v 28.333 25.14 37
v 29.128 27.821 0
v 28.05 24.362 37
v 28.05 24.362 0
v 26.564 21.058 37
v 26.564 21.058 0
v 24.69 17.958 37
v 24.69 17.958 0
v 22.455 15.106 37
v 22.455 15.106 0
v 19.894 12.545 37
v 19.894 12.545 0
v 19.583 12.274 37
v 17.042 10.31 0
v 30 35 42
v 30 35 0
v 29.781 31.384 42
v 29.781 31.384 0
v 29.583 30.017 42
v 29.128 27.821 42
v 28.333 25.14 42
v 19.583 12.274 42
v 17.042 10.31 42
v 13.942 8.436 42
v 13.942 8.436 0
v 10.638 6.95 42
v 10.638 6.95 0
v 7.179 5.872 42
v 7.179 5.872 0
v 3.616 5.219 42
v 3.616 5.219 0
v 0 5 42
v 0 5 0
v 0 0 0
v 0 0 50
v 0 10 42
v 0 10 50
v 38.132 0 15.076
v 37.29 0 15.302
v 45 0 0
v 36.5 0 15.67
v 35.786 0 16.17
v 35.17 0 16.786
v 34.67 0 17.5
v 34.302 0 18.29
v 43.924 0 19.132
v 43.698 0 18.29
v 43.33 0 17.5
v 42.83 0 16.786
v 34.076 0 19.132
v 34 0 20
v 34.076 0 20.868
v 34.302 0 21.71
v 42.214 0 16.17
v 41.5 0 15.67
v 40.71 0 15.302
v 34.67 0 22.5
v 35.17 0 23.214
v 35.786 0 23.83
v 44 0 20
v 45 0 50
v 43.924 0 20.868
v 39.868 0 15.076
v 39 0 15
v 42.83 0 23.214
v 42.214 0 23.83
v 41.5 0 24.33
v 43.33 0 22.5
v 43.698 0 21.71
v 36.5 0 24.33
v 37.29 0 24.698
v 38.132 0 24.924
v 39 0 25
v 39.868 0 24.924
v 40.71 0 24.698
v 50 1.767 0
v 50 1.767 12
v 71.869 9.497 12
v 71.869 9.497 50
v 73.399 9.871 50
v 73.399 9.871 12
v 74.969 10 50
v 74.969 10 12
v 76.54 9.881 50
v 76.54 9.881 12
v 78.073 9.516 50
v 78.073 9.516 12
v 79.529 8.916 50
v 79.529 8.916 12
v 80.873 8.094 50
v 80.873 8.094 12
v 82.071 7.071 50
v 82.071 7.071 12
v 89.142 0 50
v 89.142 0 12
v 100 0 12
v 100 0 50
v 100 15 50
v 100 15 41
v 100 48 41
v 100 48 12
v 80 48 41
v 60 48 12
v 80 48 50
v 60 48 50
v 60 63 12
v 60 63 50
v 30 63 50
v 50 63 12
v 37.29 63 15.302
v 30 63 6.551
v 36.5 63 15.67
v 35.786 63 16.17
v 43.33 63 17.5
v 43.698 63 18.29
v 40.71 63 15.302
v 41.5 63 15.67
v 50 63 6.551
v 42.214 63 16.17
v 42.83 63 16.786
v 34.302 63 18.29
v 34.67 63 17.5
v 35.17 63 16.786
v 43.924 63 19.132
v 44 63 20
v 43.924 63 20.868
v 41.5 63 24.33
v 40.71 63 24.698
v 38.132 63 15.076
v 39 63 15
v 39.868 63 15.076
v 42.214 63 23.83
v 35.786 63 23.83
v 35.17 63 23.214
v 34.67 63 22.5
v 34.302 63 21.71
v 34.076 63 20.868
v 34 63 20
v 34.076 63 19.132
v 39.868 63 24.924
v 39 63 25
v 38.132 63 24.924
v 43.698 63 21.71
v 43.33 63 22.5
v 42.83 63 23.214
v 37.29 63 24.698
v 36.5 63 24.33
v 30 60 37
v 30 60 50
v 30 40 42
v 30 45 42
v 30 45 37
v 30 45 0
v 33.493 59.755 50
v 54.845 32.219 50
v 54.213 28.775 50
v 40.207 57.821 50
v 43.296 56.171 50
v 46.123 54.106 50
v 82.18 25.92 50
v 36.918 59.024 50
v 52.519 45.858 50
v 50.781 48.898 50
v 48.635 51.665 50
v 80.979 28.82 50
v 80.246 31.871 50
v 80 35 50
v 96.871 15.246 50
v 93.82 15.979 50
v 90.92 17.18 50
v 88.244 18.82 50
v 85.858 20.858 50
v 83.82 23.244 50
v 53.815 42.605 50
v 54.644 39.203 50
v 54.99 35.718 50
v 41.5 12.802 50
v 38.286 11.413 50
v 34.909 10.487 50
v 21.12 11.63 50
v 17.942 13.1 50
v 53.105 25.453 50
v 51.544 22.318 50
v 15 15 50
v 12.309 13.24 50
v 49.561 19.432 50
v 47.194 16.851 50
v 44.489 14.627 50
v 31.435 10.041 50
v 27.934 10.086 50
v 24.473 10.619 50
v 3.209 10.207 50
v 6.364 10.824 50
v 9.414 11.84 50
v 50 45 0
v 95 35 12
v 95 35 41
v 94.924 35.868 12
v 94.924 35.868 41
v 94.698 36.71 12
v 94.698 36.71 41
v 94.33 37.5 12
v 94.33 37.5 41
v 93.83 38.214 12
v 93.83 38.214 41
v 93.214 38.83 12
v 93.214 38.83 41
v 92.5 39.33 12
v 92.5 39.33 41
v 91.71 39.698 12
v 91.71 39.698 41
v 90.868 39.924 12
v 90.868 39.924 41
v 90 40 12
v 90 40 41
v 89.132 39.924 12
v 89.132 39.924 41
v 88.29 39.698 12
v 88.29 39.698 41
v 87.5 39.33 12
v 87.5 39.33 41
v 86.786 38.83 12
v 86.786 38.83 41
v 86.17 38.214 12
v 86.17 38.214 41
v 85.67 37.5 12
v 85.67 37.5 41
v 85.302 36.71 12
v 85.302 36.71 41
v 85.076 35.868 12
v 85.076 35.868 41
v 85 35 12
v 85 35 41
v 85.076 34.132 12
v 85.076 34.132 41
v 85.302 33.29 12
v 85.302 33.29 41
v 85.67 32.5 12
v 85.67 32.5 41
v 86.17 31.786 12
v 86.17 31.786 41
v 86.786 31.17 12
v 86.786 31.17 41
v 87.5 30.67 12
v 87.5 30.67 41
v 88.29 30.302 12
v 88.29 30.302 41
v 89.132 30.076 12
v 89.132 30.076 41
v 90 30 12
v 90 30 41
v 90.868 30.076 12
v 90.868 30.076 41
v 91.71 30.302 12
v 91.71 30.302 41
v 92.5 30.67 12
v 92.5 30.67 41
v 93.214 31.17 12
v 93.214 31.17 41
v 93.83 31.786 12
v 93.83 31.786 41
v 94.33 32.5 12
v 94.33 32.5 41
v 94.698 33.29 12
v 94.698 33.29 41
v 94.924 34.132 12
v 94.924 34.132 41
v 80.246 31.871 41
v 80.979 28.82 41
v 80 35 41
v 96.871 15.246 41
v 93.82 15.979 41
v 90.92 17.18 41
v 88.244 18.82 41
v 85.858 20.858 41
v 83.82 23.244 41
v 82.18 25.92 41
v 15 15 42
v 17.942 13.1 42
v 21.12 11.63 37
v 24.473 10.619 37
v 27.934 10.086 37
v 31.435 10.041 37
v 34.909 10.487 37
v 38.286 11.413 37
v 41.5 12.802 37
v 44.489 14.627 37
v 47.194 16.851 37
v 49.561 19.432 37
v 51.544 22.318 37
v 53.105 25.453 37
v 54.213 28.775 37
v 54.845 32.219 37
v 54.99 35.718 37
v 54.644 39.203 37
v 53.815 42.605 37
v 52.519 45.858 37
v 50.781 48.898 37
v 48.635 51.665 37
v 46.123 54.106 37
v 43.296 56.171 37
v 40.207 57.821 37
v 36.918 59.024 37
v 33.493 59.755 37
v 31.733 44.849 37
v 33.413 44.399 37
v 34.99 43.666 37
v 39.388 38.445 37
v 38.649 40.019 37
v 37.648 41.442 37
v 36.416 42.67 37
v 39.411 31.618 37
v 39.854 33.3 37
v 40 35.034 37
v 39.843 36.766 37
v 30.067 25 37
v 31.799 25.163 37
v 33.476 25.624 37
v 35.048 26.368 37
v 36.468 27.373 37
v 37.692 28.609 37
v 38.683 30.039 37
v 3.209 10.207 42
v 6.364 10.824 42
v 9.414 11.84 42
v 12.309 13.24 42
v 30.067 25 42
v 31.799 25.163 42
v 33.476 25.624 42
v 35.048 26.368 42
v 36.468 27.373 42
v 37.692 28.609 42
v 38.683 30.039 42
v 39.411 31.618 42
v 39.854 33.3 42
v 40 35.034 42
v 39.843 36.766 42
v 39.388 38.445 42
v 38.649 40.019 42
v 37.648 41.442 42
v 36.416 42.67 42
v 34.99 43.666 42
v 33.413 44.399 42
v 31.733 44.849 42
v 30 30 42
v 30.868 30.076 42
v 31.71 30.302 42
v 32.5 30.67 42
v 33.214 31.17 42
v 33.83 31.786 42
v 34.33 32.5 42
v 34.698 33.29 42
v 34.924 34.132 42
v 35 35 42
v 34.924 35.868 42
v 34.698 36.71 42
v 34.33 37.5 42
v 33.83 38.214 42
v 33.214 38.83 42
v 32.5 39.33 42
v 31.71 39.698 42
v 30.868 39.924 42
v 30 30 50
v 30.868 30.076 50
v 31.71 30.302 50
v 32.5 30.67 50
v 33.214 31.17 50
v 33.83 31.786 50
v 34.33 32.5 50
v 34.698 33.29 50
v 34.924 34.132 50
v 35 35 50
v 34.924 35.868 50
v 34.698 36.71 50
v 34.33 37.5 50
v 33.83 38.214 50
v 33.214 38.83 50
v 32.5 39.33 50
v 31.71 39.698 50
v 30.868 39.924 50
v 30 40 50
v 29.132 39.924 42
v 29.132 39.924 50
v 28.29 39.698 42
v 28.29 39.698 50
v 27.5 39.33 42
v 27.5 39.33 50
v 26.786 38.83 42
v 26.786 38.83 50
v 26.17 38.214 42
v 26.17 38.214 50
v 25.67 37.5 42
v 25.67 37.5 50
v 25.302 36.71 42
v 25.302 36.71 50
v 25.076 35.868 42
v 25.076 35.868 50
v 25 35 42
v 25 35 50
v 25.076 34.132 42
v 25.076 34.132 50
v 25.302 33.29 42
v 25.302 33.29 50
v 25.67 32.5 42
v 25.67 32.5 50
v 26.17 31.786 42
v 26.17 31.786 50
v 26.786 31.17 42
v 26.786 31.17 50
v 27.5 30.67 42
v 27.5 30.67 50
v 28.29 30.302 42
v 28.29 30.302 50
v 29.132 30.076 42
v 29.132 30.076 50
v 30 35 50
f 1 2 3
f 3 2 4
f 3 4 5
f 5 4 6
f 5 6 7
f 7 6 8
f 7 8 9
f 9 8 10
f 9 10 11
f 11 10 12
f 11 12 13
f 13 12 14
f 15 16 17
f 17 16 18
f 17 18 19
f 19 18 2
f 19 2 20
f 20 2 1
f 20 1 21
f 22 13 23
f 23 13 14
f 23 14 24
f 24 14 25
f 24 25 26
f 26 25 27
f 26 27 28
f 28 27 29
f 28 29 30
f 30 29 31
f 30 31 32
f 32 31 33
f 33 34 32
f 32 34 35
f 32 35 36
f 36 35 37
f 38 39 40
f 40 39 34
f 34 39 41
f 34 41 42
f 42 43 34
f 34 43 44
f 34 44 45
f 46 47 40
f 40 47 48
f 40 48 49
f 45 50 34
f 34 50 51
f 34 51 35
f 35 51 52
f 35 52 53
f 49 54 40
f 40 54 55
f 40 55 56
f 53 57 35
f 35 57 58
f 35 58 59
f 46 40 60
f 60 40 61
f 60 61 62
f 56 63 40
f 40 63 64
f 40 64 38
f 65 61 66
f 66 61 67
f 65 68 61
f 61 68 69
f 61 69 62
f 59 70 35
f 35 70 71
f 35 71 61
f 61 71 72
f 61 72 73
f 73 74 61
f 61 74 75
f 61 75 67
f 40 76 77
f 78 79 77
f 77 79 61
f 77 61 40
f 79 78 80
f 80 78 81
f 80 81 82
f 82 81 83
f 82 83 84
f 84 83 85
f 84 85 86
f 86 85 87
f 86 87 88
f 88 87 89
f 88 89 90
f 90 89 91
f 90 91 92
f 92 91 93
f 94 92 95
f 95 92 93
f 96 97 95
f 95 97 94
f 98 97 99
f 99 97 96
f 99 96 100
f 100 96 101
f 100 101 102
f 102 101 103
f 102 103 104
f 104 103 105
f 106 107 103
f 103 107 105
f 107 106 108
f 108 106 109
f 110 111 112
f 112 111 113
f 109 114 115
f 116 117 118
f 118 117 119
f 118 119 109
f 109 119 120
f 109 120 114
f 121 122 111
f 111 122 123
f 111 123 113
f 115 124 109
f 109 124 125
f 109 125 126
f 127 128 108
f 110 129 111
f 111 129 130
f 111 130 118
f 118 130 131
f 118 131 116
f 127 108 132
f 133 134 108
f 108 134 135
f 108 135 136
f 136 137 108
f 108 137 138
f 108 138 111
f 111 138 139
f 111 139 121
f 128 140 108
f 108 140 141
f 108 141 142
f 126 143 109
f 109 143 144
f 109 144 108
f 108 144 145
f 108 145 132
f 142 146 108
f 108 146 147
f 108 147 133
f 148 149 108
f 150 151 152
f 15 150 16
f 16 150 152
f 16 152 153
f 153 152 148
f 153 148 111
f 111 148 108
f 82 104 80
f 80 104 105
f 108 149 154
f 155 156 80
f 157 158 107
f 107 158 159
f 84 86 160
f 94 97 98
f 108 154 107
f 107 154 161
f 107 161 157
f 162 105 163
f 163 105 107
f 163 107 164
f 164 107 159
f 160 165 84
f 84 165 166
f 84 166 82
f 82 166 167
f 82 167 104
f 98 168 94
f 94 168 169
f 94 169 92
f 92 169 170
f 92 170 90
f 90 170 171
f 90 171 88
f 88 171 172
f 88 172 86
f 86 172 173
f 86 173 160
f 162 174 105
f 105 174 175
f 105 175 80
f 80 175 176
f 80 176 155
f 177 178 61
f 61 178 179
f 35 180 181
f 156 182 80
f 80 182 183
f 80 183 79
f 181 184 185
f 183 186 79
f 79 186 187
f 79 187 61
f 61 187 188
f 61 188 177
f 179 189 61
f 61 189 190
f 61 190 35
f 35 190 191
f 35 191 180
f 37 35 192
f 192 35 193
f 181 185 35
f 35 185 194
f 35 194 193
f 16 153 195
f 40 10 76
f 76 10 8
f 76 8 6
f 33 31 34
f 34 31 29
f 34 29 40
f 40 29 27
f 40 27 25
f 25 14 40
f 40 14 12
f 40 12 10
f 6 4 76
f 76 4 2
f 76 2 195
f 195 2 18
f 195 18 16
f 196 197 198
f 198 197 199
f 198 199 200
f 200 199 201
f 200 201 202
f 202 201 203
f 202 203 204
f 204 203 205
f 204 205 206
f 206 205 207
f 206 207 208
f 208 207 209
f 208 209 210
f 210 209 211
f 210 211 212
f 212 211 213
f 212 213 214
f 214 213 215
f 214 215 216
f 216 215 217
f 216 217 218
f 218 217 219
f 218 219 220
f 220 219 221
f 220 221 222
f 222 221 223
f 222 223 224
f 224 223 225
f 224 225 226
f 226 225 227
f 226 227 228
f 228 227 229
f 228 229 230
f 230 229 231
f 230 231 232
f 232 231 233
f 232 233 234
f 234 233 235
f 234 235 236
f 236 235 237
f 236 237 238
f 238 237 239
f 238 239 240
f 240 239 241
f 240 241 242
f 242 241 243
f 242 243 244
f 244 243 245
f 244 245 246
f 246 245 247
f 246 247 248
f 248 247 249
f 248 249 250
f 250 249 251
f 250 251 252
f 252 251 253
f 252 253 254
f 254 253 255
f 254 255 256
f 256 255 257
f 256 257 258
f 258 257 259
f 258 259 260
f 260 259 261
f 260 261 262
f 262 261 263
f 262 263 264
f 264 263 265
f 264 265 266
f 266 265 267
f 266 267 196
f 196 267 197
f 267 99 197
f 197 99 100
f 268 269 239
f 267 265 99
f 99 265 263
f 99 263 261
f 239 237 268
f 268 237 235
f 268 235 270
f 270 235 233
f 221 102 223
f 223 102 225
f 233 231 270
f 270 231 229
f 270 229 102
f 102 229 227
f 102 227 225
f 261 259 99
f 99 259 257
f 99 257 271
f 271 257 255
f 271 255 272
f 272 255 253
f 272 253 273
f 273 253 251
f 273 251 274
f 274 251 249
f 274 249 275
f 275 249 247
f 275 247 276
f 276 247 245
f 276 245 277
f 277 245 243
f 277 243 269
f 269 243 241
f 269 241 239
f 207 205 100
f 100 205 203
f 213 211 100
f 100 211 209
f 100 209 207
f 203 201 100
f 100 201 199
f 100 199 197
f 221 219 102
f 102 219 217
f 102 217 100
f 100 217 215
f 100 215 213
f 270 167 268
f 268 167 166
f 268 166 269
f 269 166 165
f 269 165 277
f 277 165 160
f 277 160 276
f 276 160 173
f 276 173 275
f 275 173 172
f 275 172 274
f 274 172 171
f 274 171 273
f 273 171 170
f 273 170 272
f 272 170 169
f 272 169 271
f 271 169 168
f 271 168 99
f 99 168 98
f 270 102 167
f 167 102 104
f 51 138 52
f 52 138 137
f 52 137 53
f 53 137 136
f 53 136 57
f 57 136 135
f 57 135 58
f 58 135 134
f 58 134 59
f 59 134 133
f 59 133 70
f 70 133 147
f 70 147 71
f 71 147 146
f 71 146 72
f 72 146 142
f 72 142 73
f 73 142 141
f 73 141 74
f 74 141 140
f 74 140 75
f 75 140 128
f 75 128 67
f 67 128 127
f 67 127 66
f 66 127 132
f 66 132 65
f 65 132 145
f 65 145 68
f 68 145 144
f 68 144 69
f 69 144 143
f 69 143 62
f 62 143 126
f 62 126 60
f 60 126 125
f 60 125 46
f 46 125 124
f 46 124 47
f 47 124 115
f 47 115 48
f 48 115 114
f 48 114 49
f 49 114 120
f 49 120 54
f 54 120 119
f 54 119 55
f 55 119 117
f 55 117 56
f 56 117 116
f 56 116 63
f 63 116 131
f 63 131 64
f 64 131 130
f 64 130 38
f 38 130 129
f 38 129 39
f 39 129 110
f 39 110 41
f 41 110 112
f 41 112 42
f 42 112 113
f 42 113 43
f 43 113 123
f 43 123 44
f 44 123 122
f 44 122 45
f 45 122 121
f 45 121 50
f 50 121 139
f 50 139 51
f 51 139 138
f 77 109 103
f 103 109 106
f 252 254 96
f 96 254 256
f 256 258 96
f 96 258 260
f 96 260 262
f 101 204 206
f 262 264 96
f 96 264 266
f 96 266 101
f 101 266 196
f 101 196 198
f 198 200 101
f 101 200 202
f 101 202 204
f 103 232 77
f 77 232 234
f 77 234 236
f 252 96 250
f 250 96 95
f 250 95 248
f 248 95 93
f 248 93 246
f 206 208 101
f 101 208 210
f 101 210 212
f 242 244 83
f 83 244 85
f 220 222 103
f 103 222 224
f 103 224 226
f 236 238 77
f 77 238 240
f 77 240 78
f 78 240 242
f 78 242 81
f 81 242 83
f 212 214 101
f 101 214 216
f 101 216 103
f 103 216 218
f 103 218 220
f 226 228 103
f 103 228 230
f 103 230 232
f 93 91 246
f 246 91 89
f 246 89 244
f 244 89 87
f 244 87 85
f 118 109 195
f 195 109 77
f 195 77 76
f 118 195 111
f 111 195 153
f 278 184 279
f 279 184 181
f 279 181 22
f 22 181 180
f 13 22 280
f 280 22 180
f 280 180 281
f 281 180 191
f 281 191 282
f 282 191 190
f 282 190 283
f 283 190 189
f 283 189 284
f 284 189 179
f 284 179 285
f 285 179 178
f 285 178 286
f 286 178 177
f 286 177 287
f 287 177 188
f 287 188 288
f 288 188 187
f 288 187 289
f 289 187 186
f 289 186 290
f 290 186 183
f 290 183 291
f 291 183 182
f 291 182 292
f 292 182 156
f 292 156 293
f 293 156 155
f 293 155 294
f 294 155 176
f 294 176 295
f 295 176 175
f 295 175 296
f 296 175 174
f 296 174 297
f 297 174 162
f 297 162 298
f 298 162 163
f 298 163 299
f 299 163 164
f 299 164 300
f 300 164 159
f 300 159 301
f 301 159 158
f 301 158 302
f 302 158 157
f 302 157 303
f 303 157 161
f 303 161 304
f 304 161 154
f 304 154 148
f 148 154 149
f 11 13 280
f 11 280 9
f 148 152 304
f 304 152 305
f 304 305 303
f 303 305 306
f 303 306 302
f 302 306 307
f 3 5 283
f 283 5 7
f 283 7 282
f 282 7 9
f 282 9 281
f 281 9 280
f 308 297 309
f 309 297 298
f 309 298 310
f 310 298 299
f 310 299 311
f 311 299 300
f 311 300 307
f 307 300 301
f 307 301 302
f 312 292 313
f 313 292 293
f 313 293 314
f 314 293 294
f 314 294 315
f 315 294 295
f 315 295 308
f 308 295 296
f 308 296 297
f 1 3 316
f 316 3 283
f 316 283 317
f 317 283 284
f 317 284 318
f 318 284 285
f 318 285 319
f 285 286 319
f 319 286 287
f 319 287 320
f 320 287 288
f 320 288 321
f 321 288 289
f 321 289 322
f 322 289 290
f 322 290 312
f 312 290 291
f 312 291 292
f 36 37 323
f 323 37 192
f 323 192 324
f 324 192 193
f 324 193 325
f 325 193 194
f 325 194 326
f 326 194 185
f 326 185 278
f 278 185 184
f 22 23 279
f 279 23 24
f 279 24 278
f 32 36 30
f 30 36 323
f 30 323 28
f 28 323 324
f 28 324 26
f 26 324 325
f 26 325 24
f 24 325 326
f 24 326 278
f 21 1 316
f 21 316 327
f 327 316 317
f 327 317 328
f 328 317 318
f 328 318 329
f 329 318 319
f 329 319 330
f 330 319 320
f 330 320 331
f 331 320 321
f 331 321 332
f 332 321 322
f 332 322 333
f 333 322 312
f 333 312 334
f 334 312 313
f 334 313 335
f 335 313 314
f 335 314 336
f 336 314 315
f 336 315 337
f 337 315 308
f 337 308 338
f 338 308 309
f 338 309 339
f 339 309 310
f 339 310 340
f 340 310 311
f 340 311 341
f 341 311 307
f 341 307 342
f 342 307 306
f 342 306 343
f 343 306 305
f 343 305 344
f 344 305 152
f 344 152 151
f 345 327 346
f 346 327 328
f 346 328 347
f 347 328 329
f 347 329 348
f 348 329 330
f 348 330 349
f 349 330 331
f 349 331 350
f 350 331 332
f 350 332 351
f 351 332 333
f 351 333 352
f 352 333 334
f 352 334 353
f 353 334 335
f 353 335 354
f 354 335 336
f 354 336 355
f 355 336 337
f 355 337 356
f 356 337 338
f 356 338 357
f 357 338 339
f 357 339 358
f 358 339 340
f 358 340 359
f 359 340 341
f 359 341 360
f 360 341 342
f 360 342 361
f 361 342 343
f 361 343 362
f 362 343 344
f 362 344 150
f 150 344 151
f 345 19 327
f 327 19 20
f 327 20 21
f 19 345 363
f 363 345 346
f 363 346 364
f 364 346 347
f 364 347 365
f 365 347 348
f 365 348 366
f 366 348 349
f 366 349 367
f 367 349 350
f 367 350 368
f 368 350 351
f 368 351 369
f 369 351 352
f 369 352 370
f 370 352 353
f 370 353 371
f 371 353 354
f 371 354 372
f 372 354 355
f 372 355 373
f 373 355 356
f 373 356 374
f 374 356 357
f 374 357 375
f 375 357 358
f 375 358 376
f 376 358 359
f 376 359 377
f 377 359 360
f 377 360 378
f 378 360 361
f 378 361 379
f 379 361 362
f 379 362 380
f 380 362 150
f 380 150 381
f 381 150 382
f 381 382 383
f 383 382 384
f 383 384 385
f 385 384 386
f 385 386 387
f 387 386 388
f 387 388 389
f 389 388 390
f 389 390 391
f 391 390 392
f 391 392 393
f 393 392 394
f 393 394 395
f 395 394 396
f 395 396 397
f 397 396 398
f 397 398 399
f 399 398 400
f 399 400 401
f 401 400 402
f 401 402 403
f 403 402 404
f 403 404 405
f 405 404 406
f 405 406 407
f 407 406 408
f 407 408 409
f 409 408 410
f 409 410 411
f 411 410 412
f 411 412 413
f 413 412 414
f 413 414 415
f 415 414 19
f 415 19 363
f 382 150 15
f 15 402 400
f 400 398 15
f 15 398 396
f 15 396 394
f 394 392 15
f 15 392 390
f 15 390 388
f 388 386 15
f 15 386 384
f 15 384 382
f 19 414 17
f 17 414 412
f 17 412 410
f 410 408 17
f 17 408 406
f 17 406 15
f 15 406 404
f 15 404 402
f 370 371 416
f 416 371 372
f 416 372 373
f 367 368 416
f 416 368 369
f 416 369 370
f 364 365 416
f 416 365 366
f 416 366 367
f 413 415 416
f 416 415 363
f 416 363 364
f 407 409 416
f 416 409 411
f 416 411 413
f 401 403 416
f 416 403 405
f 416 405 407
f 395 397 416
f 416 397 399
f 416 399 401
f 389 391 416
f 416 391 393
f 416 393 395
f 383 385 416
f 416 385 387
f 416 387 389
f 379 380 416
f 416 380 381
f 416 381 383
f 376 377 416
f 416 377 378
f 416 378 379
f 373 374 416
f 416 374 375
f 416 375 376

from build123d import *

# Parameters (mm, degrees)
BOSS_EXTRUDE1_DEPTH = 50
SKETCH3_R           = 5
CUT_EXTRUDE1_DEPTH  = 64
CUT_EXTRUDE2_DEPTH  = 9
SKETCH7_R           = 5
CUT_EXTRUDE3_DEPTH  = 82
SKETCH8_W           = 40
SKETCH8_H           = 12
CUT_EXTRUDE4_DEPTH  = 82
SKETCH9_W           = 10
SKETCH9_H           = 12
CUT_EXTRUDE5_DEPTH  = 82
CUT_EXTRUDE6_DEPTH  = 82
SKETCH11_R          = 25
CUT_EXTRUDE7_DEPTH  = 13
BOSS_EXTRUDE2_DEPTH = 8
BOSS_EXTRUDE3_DEPTH = 5
SKETCH14_R          = 5
BOSS_EXTRUDE4_DEPTH = 8


with BuildPart() as part:
    # Sketch1 → Boss-Extrude1 (new body)
    with BuildSketch(Plane.XY):
        with BuildLine():
            Line((0, 5), (0, 0))
            Line((0, 0), (45, 0))
            Line((45, 0), (71.869067897, 9.497224024))
            ThreePointArc((71.869067897, 9.497224024), (77.313595869, 9.728683064), (82.071067812, 7.071067812))
            Line((82.071067812, 7.071067812), (89.142135624, 0))
            Line((89.142135624, 0), (100, 0))
            Line((100, 0), (100, 48))
            Line((100, 48), (60, 48))
            Line((60, 48), (60, 63))
            Line((60, 63), (30, 63))
            Line((30, 63), (30, 35))
            ThreePointArc((30, 35), (21.213203436, 13.786796564), (0, 5))
        make_face()
    extrude(amount=BOSS_EXTRUDE1_DEPTH)

    # Sketch3 → Cut-Extrude1 (cut)
    with BuildSketch(Plane.XY.offset(50)):
        with Locations((90, 35)):
            Circle(SKETCH3_R)
    extrude(amount=-CUT_EXTRUDE1_DEPTH, mode=Mode.SUBTRACT)

    # Sketch6 → Cut-Extrude2 (cut)
    with BuildSketch(Plane.XY.offset(50)):
        with BuildLine():
            Line((80, 48), (100, 48))
            Line((100, 48), (100, 35))
            Line((100, 35), (100, 15))
            ThreePointArc((100, 15), (85.857864376, 20.857864376), (80, 35))
            Line((80, 35), (80, 48))
        make_face()
    extrude(amount=-CUT_EXTRUDE2_DEPTH, mode=Mode.SUBTRACT)

    # Sketch7 → Cut-Extrude3 (cut)
    with BuildSketch(Plane(origin=(0, 63, 0), x_dir=(1, 0, 0), z_dir=(0, 1, 0))):
        with Locations(Location((39, -20, 0), (0, 0, 180))):
            Circle(SKETCH7_R)
    extrude(amount=-CUT_EXTRUDE3_DEPTH, mode=Mode.SUBTRACT)

    # Sketch8 → Cut-Extrude4 (cut)
    with BuildSketch(Plane(origin=(0, 48, 0), x_dir=(1, 0, 0), z_dir=(0, 1, 0))):
        with Locations((80, -6)):
            Rectangle(SKETCH8_W, SKETCH8_H)
    extrude(amount=-CUT_EXTRUDE4_DEPTH, mode=Mode.SUBTRACT)

    # Sketch9 → Cut-Extrude5 (cut)
    with BuildSketch(Plane(origin=(0, 63, 0), x_dir=(1, 0, 0), z_dir=(0, 1, 0))):
        with Locations((55, -6)):
            Rectangle(SKETCH9_W, SKETCH9_H)
    extrude(amount=-CUT_EXTRUDE5_DEPTH, mode=Mode.SUBTRACT)

    # Sketch10 → Cut-Extrude6 (cut)
    with BuildSketch(Plane(origin=(50, 0, 0), x_dir=(0, 0, -1), z_dir=(1, 0, 0))):
        Polygon((0, 63), (0, 45), (-6.551464217, 63), align=None)
    extrude(amount=-CUT_EXTRUDE6_DEPTH, mode=Mode.SUBTRACT)

    # Sketch11 → Cut-Extrude7 (cut)
    with BuildSketch(Plane.XY.offset(50)):
        with Locations((30, 35)):
            Circle(SKETCH11_R)
    extrude(amount=-CUT_EXTRUDE7_DEPTH, mode=Mode.SUBTRACT)

    # Sketch12 → Boss-Extrude2 (add)
    with BuildSketch(Plane.XY.offset(50)):
        with BuildLine():
            ThreePointArc((19.583333333, 12.273516428), (17.218757327, 13.514194553), (15, 15))
            ThreePointArc((15, 15), (7.90569415, 11.282917549), (0, 10))
            Line((0, 10), (0, 5))
            ThreePointArc((0, 5), (10.445226011, 6.877104459), (19.583333333, 12.273516428))
        make_face()
    extrude(amount=-BOSS_EXTRUDE2_DEPTH)

    # Sketch13 → Boss-Extrude3 (add)
    with BuildSketch(Plane.XY.offset(37)):
        with BuildLine():
            ThreePointArc((28.333333333, 25.139867028), (39.964971895, 34.163737397), (30, 45))
            Line((30, 45), (30, 35))
            ThreePointArc((30, 35), (29.580398915, 30), (28.333333333, 25.139867028))
        make_face()
    extrude(amount=BOSS_EXTRUDE3_DEPTH)

    # Sketch14 → Boss-Extrude4 (add)
    with BuildSketch(Plane.XY.offset(42)):
        with Locations(Location((30, 35, 0), (0, 0, 265.219808153))):
            Circle(SKETCH14_R)
    extrude(amount=BOSS_EXTRUDE4_DEPTH)


solid = part.part
